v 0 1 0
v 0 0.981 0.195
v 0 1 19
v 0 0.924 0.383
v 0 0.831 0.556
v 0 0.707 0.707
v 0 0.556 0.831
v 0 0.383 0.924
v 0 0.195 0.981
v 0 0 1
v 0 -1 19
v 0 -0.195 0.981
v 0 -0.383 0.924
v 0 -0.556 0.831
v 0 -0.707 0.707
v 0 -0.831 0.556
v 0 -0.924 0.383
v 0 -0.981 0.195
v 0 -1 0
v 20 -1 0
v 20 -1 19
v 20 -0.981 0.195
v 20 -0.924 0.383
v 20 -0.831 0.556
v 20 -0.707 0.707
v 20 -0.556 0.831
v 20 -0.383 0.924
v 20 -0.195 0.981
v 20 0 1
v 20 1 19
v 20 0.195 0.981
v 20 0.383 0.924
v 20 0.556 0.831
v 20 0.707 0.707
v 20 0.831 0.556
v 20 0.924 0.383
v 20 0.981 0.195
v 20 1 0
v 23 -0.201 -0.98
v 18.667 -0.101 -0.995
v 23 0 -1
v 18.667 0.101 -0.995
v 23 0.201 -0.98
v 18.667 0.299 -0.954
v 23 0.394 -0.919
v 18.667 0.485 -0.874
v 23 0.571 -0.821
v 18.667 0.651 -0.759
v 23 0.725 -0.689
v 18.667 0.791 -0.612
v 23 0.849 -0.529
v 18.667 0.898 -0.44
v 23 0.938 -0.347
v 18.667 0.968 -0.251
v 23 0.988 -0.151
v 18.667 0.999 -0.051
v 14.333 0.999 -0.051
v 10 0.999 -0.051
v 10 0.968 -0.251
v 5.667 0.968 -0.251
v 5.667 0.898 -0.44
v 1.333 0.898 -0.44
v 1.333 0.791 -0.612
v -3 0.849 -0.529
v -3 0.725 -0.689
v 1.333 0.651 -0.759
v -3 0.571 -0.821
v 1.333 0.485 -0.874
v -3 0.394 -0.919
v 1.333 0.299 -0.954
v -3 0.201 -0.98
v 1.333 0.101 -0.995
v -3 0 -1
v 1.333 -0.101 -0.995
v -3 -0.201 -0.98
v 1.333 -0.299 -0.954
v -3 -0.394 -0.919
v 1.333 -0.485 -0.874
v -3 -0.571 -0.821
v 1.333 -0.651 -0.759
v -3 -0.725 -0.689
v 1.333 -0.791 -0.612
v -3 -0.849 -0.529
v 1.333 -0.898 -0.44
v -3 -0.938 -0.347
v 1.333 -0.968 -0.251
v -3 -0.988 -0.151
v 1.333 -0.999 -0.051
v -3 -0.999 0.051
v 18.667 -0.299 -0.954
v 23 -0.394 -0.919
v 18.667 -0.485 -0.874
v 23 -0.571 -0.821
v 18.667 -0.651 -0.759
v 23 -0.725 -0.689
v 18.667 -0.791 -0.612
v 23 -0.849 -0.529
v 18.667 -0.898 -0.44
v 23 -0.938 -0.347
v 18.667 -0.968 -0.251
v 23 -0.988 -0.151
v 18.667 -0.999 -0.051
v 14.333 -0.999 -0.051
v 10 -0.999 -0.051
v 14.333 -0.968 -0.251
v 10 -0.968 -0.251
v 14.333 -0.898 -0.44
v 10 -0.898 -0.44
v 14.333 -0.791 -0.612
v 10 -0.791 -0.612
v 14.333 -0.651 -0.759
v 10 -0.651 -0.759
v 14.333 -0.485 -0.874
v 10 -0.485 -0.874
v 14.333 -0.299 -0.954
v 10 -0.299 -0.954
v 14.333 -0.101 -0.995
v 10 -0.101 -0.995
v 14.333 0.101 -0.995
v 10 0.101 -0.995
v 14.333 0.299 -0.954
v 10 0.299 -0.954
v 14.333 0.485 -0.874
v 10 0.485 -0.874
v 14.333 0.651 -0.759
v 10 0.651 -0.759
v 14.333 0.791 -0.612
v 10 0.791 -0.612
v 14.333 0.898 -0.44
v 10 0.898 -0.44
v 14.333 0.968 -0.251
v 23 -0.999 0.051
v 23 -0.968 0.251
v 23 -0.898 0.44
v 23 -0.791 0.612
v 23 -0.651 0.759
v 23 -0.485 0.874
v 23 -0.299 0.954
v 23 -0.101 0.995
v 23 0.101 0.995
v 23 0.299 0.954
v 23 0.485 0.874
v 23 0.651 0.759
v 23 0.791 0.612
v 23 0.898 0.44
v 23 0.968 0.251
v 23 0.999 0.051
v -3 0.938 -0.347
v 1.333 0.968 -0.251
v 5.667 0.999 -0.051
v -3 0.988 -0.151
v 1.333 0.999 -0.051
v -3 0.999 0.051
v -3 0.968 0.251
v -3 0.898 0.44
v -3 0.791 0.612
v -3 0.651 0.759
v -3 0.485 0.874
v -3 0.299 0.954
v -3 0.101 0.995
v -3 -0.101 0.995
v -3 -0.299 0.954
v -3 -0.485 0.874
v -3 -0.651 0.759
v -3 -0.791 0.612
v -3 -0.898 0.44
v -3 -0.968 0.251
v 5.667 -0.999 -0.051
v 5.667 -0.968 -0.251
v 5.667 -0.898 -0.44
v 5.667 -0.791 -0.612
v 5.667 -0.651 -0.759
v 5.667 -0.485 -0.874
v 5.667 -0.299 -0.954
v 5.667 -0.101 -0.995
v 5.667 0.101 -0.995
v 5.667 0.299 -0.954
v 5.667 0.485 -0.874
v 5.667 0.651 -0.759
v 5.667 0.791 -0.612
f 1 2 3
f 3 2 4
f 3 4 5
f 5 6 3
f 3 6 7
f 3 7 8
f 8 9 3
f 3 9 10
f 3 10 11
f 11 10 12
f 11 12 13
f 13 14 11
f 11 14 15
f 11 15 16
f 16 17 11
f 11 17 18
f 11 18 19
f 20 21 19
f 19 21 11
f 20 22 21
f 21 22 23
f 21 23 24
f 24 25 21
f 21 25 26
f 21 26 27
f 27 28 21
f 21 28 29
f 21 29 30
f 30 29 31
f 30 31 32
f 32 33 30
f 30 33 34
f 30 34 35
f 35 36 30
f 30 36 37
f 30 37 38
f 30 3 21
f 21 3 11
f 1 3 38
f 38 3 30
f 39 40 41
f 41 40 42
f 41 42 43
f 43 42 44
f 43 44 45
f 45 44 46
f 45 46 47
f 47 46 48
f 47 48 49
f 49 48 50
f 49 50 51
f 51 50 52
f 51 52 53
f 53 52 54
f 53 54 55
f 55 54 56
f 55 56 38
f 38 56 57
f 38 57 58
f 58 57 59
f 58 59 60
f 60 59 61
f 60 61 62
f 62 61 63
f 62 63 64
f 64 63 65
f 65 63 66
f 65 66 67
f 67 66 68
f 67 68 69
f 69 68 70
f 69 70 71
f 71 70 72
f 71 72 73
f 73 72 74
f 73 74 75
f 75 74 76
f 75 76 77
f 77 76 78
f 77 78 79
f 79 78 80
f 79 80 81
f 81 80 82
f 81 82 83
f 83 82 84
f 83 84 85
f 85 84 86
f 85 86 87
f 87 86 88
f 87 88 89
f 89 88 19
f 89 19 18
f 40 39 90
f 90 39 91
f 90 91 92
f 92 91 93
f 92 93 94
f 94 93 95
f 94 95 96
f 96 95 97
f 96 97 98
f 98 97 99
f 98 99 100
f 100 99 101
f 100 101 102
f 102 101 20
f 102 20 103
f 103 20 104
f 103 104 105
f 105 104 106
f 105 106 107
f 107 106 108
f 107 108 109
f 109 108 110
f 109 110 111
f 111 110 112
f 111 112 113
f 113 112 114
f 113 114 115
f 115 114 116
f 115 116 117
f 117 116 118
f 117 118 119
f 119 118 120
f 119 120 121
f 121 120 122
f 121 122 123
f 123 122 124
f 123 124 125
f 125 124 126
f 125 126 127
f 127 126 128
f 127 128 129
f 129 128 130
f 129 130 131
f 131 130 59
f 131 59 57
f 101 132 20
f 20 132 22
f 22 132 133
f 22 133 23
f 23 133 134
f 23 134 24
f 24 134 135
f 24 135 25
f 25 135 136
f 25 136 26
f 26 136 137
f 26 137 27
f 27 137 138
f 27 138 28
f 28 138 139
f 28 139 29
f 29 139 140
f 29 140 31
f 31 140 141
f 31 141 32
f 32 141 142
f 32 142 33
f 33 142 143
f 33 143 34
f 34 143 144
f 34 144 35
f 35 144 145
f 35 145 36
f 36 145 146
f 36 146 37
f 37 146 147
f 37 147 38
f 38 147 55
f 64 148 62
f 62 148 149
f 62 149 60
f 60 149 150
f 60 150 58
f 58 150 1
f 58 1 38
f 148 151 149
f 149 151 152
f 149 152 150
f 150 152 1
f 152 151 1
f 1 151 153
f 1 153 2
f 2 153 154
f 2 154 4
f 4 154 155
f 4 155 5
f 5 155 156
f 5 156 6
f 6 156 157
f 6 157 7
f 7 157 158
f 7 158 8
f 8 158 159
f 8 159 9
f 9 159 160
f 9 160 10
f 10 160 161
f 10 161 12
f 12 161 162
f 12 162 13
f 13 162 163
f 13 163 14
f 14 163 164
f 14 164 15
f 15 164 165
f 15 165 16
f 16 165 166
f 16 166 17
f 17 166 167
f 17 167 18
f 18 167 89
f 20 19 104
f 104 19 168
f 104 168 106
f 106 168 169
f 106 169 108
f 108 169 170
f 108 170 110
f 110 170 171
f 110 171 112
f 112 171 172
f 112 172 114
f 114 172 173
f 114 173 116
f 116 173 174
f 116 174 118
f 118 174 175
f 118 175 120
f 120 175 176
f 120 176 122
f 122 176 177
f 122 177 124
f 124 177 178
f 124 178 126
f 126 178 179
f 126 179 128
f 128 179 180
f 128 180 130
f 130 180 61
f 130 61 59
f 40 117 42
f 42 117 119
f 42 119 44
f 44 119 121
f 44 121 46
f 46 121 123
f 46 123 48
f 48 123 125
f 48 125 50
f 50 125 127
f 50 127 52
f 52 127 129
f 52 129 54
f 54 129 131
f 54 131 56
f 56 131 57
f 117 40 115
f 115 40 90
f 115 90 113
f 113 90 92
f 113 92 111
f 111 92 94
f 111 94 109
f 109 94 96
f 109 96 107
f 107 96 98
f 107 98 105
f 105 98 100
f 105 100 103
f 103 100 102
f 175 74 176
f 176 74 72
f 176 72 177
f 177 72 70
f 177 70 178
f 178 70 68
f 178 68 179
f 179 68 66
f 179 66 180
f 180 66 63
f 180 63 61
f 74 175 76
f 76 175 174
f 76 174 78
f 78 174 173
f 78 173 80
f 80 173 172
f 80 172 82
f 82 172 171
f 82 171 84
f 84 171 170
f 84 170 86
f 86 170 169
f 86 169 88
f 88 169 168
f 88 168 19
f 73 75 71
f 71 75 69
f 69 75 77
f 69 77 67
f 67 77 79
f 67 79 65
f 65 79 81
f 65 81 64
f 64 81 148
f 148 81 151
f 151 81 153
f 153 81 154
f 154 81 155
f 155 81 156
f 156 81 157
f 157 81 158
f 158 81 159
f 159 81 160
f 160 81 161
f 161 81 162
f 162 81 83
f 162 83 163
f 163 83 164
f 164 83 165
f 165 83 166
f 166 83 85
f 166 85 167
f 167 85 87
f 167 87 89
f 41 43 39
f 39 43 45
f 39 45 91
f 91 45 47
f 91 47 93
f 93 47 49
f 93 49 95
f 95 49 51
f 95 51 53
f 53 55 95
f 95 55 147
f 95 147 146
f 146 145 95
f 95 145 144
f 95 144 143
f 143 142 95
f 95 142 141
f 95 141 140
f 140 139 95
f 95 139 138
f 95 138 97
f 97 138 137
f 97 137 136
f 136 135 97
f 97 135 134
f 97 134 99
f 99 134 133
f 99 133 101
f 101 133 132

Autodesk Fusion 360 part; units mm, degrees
sketch "Sketch1" plane through (0, 0, 0) normal (0, 1, 0) x (1, 0, 0)
  line L0 (0, 0) -> (0, -19)
  line L1 (0, -19) -> (20, -19)
  line L2 (20, -19) -> (20, 0)
  line L3 (20, 0) -> (0, 0)
  line L4 (0, 0) -> (-3, 0)
  line L5 (-3, 0) -> (-3, 1)
  line L6 (-3, 1) -> (23, 1)
  line L7 (20, 0) -> (23, 0)
  line L8 (23, 0) -> (23, 1)
  dimension "d1" = 19
  dimension "d2" = 20
  dimension "d7" = 3
  dimension "d8" = 3
  dimension "d9" = 1
revolve "Revolve1" add sketch "Sketch1" angle 360 about axis through (20, 0, 0) along (-1, 0, 0) contours L3 L4 L5 L6 L7 L8
extrude "Extrude1" add sketch "Sketch1" along normal mid plane 2 contours L0 L1 L2 L3
equation "d8 = d7"
